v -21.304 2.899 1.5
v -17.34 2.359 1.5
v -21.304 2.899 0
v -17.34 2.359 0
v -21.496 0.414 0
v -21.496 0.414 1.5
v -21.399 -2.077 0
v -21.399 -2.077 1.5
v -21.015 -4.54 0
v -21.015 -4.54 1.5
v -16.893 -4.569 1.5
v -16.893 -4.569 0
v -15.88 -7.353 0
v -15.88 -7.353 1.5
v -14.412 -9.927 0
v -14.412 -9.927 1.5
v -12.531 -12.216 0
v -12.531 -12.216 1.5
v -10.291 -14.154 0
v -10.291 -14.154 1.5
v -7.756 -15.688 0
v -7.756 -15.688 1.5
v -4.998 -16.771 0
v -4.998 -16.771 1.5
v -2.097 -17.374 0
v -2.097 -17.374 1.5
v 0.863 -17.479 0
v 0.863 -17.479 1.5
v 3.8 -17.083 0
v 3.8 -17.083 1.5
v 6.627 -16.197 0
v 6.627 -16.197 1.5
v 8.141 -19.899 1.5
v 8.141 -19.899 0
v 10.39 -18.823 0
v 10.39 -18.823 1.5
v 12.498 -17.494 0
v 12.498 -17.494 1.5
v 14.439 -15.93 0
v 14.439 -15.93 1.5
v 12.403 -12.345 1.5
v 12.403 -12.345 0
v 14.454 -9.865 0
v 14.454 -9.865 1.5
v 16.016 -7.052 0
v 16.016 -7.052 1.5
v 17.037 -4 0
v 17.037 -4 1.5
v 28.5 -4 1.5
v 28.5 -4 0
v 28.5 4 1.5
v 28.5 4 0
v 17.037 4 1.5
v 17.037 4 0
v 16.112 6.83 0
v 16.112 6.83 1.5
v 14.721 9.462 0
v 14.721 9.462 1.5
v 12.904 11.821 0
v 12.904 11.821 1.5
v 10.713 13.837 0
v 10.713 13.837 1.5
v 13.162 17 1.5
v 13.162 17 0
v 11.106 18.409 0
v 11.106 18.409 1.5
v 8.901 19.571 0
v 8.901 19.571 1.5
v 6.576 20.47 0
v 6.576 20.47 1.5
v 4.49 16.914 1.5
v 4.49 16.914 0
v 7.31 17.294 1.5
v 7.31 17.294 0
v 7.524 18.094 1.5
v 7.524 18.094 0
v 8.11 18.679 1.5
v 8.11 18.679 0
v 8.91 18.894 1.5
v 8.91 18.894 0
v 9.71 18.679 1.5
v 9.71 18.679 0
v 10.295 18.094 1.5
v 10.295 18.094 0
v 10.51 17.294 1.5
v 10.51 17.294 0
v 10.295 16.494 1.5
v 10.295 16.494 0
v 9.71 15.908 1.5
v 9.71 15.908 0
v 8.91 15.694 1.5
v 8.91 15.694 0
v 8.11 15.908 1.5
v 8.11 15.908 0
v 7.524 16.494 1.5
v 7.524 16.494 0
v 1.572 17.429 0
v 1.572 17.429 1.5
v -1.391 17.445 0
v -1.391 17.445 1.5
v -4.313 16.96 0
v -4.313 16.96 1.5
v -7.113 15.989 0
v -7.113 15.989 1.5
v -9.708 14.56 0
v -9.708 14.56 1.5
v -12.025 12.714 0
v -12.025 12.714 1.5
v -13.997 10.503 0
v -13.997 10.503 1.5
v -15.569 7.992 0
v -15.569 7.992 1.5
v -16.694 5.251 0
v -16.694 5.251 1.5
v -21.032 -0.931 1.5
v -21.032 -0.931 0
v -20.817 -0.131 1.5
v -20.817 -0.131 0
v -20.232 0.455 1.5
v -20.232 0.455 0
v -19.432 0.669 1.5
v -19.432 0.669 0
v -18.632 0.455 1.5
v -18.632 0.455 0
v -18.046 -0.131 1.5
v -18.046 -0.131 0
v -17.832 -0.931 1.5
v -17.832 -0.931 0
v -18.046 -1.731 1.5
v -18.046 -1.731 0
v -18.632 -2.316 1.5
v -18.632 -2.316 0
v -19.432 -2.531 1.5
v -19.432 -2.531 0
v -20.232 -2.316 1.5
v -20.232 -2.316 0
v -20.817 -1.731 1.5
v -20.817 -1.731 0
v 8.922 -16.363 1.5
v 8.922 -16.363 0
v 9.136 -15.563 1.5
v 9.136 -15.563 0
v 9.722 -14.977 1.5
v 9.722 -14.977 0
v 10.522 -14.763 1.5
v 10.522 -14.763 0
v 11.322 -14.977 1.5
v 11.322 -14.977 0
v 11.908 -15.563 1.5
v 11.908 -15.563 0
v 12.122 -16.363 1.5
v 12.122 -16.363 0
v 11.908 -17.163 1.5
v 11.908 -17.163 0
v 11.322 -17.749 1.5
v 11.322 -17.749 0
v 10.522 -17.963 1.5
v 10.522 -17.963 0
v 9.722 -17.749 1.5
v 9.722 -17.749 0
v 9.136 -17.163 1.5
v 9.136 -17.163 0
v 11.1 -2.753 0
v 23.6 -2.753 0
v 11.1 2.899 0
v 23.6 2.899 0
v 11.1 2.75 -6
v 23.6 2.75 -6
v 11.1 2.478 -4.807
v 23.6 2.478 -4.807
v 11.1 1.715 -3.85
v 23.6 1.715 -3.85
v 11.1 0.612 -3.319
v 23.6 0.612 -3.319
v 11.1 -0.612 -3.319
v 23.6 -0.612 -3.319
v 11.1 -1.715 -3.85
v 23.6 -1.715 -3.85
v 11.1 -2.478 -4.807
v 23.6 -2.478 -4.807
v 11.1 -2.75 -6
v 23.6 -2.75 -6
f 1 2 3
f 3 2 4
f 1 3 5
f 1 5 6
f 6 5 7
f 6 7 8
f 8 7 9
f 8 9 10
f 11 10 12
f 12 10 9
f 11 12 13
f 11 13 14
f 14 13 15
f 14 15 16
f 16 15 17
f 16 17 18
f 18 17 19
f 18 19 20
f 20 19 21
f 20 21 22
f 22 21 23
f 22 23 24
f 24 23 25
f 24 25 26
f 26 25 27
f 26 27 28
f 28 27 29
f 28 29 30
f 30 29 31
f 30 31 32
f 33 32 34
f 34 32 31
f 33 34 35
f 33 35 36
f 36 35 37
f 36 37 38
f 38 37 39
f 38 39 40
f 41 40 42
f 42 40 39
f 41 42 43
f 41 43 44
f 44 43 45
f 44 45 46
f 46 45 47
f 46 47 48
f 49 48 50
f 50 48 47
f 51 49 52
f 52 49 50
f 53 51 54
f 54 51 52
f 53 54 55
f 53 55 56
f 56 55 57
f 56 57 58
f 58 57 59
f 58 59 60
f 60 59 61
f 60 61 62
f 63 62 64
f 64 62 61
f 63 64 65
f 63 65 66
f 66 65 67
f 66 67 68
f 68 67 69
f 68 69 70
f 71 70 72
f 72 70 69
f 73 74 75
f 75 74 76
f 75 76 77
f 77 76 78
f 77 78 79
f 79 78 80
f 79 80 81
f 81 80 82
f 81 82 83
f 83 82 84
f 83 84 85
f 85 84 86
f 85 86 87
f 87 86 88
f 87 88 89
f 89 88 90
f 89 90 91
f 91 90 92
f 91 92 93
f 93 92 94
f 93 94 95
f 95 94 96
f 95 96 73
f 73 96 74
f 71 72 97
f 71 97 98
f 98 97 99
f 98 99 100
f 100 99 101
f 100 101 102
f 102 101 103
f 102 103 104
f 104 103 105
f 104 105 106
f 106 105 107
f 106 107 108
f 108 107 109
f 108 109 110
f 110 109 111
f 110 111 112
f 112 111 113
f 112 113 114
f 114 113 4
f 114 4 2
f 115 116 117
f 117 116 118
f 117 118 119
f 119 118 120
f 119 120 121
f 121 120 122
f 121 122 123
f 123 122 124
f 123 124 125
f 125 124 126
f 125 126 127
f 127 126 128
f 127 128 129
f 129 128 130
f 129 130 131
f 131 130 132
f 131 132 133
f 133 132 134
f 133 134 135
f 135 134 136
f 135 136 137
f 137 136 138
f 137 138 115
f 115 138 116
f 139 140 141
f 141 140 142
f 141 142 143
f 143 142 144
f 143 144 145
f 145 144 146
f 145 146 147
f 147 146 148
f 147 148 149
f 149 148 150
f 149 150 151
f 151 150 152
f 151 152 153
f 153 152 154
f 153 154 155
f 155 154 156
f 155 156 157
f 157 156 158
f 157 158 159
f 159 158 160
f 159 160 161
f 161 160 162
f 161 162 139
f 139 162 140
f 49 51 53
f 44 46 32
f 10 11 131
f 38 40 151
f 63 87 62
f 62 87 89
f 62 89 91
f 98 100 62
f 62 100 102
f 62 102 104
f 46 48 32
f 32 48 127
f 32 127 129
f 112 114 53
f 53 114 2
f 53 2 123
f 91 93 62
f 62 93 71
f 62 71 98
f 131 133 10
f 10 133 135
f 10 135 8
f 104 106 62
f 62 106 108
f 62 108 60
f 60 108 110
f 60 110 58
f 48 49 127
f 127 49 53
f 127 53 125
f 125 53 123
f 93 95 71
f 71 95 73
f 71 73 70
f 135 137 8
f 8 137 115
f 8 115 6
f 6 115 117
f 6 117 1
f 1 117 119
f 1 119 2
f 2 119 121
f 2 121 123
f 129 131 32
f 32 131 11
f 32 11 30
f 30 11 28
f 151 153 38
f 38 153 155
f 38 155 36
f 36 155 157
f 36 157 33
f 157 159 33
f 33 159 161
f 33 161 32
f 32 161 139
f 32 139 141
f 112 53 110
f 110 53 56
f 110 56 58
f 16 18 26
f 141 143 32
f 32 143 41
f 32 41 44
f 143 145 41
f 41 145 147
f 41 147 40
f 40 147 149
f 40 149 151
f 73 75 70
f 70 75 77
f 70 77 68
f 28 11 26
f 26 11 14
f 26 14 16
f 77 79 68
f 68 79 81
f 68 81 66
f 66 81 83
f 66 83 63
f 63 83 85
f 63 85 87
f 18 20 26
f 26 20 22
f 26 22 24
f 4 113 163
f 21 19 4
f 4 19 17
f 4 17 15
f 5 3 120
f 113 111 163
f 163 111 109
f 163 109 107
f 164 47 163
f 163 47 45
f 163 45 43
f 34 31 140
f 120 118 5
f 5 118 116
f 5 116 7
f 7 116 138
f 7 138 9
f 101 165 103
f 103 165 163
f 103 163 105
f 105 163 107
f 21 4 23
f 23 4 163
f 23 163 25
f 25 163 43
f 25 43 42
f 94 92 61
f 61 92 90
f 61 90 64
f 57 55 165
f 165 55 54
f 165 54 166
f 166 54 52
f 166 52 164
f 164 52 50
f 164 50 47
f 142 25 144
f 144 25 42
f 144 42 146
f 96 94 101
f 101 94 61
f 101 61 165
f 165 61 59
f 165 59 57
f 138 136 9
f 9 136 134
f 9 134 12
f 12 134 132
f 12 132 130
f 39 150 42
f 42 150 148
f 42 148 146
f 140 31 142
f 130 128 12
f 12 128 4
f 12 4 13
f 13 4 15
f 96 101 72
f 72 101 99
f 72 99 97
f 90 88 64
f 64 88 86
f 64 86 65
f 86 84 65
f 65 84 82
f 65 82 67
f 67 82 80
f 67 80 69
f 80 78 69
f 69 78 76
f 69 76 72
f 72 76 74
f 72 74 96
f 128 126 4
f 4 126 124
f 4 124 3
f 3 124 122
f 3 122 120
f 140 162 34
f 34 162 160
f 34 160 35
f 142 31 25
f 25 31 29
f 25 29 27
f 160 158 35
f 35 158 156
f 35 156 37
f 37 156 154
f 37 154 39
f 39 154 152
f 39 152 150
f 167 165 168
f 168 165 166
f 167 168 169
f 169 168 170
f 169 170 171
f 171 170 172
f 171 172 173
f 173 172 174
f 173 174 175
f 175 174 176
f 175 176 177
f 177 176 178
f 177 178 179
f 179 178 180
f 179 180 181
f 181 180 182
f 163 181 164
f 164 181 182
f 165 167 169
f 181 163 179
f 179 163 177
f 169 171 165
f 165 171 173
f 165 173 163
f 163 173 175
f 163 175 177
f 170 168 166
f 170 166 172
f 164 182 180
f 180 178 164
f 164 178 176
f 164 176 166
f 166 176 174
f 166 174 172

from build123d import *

# Parameters (mm, degrees)
SKETCH1_R           = 1.6
BOSS_EXTRUDE1_DEPTH = 1.5
BOSS_EXTRUDE2_START = -4.9
BOSS_EXTRUDE2_DEPTH = 12.5


with BuildPart() as part:
    # Sketch1 → Boss-Extrude1 (new body)
    with BuildSketch(Plane.XY):
        with BuildLine():
            Line((-17.340213643, 2.359447139), (-21.303691048, 2.898749343))
            ThreePointArc((-21.303691048, 2.898749343), (-21.483854857, -0.833054911), (-21.015258676, -4.539702939))
            Line((-21.015258676, -4.539702939), (-16.893017252, -4.569022665))
            ThreePointArc((-16.893017252, -4.569022665), (-17.46366078, -1.127187719), (-17.340213643, 2.359447139))
        make_face()
        with Locations((-19.431785099, -0.930778688)):
            Circle(SKETCH1_R, mode=Mode.SUBTRACT)
        with BuildLine():
            ThreePointArc((-16.893017252, -4.569022665), (-7.75565719, -15.687567738), (6.62676566, -16.196789092))
            ThreePointArc((6.62676566, -16.196789092), (9.70800359, -14.560380019), (12.403398325, -12.345270754))
            ThreePointArc((12.403398325, -12.345270754), (15.300036009, -8.494639375), (17.036725037, -4))
            Line((17.036725037, -4), (28.5, -4))
            Line((28.5, -4), (28.5, 4))
            Line((28.5, 4), (17.036725037, 4))
            ThreePointArc((17.036725037, 4), (14.721119178, 9.462486468), (10.713447983, 13.837341952))
            ThreePointArc((10.713447983, 13.837341952), (7.75565719, 15.687567738), (4.489618927, 16.91429342))
            ThreePointArc((4.489618927, 16.91429342), (-9.70800359, 14.560380019), (-17.340213643, 2.359447139))
            ThreePointArc((-17.340213643, 2.359447139), (-17.46366078, -1.127187719), (-16.893017252, -4.569022665))
        make_face()
        with BuildLine():
            Line((10.713447983, 13.837341952), (13.162236094, 17.00016297))
            ThreePointArc((13.162236094, 17.00016297), (10.020480713, 19.022091533), (6.576131268, 20.46959935))
            Line((6.576131268, 20.46959935), (4.489618927, 16.91429342))
            ThreePointArc((4.489618927, 16.91429342), (7.75565719, 15.687567738), (10.713447983, 13.837341952))
        make_face()
        with Locations((8.909814561, 17.293808881)):
            Circle(SKETCH1_R, mode=Mode.SUBTRACT)
        with BuildLine():
            Line((6.62676566, -16.196789092), (8.141454954, -19.898912313))
            ThreePointArc((8.141454954, -19.898912313), (11.463374144, -18.189036622), (14.439127409, -15.929896411))
            Line((14.439127409, -15.929896411), (12.403398325, -12.345270754))
            ThreePointArc((12.403398325, -12.345270754), (9.70800359, -14.560380019), (6.62676566, -16.196789092))
        make_face()
        with Locations((10.521970538, -16.363030193)):
            Circle(SKETCH1_R, mode=Mode.SUBTRACT)
    extrude(amount=BOSS_EXTRUDE1_DEPTH)

    # Sketch2 → Boss-Extrude2 (add)
    with BuildSketch(Plane(origin=(28.5, 0, 0), x_dir=(0, 0, -1), z_dir=(1, 0, 0)).offset(BOSS_EXTRUDE2_START)):
        with BuildLine():
            ThreePointArc((6, -2.75), (3.25, 0), (6, 2.75))
            Line((6, 2.75), (0, 2.898749343))
            Line((0, 2.898749343), (0, -2.752957148))
            Line((0, -2.752957148), (6, -2.75))
        make_face()
    extrude(amount=-BOSS_EXTRUDE2_DEPTH)


solid = part.part
